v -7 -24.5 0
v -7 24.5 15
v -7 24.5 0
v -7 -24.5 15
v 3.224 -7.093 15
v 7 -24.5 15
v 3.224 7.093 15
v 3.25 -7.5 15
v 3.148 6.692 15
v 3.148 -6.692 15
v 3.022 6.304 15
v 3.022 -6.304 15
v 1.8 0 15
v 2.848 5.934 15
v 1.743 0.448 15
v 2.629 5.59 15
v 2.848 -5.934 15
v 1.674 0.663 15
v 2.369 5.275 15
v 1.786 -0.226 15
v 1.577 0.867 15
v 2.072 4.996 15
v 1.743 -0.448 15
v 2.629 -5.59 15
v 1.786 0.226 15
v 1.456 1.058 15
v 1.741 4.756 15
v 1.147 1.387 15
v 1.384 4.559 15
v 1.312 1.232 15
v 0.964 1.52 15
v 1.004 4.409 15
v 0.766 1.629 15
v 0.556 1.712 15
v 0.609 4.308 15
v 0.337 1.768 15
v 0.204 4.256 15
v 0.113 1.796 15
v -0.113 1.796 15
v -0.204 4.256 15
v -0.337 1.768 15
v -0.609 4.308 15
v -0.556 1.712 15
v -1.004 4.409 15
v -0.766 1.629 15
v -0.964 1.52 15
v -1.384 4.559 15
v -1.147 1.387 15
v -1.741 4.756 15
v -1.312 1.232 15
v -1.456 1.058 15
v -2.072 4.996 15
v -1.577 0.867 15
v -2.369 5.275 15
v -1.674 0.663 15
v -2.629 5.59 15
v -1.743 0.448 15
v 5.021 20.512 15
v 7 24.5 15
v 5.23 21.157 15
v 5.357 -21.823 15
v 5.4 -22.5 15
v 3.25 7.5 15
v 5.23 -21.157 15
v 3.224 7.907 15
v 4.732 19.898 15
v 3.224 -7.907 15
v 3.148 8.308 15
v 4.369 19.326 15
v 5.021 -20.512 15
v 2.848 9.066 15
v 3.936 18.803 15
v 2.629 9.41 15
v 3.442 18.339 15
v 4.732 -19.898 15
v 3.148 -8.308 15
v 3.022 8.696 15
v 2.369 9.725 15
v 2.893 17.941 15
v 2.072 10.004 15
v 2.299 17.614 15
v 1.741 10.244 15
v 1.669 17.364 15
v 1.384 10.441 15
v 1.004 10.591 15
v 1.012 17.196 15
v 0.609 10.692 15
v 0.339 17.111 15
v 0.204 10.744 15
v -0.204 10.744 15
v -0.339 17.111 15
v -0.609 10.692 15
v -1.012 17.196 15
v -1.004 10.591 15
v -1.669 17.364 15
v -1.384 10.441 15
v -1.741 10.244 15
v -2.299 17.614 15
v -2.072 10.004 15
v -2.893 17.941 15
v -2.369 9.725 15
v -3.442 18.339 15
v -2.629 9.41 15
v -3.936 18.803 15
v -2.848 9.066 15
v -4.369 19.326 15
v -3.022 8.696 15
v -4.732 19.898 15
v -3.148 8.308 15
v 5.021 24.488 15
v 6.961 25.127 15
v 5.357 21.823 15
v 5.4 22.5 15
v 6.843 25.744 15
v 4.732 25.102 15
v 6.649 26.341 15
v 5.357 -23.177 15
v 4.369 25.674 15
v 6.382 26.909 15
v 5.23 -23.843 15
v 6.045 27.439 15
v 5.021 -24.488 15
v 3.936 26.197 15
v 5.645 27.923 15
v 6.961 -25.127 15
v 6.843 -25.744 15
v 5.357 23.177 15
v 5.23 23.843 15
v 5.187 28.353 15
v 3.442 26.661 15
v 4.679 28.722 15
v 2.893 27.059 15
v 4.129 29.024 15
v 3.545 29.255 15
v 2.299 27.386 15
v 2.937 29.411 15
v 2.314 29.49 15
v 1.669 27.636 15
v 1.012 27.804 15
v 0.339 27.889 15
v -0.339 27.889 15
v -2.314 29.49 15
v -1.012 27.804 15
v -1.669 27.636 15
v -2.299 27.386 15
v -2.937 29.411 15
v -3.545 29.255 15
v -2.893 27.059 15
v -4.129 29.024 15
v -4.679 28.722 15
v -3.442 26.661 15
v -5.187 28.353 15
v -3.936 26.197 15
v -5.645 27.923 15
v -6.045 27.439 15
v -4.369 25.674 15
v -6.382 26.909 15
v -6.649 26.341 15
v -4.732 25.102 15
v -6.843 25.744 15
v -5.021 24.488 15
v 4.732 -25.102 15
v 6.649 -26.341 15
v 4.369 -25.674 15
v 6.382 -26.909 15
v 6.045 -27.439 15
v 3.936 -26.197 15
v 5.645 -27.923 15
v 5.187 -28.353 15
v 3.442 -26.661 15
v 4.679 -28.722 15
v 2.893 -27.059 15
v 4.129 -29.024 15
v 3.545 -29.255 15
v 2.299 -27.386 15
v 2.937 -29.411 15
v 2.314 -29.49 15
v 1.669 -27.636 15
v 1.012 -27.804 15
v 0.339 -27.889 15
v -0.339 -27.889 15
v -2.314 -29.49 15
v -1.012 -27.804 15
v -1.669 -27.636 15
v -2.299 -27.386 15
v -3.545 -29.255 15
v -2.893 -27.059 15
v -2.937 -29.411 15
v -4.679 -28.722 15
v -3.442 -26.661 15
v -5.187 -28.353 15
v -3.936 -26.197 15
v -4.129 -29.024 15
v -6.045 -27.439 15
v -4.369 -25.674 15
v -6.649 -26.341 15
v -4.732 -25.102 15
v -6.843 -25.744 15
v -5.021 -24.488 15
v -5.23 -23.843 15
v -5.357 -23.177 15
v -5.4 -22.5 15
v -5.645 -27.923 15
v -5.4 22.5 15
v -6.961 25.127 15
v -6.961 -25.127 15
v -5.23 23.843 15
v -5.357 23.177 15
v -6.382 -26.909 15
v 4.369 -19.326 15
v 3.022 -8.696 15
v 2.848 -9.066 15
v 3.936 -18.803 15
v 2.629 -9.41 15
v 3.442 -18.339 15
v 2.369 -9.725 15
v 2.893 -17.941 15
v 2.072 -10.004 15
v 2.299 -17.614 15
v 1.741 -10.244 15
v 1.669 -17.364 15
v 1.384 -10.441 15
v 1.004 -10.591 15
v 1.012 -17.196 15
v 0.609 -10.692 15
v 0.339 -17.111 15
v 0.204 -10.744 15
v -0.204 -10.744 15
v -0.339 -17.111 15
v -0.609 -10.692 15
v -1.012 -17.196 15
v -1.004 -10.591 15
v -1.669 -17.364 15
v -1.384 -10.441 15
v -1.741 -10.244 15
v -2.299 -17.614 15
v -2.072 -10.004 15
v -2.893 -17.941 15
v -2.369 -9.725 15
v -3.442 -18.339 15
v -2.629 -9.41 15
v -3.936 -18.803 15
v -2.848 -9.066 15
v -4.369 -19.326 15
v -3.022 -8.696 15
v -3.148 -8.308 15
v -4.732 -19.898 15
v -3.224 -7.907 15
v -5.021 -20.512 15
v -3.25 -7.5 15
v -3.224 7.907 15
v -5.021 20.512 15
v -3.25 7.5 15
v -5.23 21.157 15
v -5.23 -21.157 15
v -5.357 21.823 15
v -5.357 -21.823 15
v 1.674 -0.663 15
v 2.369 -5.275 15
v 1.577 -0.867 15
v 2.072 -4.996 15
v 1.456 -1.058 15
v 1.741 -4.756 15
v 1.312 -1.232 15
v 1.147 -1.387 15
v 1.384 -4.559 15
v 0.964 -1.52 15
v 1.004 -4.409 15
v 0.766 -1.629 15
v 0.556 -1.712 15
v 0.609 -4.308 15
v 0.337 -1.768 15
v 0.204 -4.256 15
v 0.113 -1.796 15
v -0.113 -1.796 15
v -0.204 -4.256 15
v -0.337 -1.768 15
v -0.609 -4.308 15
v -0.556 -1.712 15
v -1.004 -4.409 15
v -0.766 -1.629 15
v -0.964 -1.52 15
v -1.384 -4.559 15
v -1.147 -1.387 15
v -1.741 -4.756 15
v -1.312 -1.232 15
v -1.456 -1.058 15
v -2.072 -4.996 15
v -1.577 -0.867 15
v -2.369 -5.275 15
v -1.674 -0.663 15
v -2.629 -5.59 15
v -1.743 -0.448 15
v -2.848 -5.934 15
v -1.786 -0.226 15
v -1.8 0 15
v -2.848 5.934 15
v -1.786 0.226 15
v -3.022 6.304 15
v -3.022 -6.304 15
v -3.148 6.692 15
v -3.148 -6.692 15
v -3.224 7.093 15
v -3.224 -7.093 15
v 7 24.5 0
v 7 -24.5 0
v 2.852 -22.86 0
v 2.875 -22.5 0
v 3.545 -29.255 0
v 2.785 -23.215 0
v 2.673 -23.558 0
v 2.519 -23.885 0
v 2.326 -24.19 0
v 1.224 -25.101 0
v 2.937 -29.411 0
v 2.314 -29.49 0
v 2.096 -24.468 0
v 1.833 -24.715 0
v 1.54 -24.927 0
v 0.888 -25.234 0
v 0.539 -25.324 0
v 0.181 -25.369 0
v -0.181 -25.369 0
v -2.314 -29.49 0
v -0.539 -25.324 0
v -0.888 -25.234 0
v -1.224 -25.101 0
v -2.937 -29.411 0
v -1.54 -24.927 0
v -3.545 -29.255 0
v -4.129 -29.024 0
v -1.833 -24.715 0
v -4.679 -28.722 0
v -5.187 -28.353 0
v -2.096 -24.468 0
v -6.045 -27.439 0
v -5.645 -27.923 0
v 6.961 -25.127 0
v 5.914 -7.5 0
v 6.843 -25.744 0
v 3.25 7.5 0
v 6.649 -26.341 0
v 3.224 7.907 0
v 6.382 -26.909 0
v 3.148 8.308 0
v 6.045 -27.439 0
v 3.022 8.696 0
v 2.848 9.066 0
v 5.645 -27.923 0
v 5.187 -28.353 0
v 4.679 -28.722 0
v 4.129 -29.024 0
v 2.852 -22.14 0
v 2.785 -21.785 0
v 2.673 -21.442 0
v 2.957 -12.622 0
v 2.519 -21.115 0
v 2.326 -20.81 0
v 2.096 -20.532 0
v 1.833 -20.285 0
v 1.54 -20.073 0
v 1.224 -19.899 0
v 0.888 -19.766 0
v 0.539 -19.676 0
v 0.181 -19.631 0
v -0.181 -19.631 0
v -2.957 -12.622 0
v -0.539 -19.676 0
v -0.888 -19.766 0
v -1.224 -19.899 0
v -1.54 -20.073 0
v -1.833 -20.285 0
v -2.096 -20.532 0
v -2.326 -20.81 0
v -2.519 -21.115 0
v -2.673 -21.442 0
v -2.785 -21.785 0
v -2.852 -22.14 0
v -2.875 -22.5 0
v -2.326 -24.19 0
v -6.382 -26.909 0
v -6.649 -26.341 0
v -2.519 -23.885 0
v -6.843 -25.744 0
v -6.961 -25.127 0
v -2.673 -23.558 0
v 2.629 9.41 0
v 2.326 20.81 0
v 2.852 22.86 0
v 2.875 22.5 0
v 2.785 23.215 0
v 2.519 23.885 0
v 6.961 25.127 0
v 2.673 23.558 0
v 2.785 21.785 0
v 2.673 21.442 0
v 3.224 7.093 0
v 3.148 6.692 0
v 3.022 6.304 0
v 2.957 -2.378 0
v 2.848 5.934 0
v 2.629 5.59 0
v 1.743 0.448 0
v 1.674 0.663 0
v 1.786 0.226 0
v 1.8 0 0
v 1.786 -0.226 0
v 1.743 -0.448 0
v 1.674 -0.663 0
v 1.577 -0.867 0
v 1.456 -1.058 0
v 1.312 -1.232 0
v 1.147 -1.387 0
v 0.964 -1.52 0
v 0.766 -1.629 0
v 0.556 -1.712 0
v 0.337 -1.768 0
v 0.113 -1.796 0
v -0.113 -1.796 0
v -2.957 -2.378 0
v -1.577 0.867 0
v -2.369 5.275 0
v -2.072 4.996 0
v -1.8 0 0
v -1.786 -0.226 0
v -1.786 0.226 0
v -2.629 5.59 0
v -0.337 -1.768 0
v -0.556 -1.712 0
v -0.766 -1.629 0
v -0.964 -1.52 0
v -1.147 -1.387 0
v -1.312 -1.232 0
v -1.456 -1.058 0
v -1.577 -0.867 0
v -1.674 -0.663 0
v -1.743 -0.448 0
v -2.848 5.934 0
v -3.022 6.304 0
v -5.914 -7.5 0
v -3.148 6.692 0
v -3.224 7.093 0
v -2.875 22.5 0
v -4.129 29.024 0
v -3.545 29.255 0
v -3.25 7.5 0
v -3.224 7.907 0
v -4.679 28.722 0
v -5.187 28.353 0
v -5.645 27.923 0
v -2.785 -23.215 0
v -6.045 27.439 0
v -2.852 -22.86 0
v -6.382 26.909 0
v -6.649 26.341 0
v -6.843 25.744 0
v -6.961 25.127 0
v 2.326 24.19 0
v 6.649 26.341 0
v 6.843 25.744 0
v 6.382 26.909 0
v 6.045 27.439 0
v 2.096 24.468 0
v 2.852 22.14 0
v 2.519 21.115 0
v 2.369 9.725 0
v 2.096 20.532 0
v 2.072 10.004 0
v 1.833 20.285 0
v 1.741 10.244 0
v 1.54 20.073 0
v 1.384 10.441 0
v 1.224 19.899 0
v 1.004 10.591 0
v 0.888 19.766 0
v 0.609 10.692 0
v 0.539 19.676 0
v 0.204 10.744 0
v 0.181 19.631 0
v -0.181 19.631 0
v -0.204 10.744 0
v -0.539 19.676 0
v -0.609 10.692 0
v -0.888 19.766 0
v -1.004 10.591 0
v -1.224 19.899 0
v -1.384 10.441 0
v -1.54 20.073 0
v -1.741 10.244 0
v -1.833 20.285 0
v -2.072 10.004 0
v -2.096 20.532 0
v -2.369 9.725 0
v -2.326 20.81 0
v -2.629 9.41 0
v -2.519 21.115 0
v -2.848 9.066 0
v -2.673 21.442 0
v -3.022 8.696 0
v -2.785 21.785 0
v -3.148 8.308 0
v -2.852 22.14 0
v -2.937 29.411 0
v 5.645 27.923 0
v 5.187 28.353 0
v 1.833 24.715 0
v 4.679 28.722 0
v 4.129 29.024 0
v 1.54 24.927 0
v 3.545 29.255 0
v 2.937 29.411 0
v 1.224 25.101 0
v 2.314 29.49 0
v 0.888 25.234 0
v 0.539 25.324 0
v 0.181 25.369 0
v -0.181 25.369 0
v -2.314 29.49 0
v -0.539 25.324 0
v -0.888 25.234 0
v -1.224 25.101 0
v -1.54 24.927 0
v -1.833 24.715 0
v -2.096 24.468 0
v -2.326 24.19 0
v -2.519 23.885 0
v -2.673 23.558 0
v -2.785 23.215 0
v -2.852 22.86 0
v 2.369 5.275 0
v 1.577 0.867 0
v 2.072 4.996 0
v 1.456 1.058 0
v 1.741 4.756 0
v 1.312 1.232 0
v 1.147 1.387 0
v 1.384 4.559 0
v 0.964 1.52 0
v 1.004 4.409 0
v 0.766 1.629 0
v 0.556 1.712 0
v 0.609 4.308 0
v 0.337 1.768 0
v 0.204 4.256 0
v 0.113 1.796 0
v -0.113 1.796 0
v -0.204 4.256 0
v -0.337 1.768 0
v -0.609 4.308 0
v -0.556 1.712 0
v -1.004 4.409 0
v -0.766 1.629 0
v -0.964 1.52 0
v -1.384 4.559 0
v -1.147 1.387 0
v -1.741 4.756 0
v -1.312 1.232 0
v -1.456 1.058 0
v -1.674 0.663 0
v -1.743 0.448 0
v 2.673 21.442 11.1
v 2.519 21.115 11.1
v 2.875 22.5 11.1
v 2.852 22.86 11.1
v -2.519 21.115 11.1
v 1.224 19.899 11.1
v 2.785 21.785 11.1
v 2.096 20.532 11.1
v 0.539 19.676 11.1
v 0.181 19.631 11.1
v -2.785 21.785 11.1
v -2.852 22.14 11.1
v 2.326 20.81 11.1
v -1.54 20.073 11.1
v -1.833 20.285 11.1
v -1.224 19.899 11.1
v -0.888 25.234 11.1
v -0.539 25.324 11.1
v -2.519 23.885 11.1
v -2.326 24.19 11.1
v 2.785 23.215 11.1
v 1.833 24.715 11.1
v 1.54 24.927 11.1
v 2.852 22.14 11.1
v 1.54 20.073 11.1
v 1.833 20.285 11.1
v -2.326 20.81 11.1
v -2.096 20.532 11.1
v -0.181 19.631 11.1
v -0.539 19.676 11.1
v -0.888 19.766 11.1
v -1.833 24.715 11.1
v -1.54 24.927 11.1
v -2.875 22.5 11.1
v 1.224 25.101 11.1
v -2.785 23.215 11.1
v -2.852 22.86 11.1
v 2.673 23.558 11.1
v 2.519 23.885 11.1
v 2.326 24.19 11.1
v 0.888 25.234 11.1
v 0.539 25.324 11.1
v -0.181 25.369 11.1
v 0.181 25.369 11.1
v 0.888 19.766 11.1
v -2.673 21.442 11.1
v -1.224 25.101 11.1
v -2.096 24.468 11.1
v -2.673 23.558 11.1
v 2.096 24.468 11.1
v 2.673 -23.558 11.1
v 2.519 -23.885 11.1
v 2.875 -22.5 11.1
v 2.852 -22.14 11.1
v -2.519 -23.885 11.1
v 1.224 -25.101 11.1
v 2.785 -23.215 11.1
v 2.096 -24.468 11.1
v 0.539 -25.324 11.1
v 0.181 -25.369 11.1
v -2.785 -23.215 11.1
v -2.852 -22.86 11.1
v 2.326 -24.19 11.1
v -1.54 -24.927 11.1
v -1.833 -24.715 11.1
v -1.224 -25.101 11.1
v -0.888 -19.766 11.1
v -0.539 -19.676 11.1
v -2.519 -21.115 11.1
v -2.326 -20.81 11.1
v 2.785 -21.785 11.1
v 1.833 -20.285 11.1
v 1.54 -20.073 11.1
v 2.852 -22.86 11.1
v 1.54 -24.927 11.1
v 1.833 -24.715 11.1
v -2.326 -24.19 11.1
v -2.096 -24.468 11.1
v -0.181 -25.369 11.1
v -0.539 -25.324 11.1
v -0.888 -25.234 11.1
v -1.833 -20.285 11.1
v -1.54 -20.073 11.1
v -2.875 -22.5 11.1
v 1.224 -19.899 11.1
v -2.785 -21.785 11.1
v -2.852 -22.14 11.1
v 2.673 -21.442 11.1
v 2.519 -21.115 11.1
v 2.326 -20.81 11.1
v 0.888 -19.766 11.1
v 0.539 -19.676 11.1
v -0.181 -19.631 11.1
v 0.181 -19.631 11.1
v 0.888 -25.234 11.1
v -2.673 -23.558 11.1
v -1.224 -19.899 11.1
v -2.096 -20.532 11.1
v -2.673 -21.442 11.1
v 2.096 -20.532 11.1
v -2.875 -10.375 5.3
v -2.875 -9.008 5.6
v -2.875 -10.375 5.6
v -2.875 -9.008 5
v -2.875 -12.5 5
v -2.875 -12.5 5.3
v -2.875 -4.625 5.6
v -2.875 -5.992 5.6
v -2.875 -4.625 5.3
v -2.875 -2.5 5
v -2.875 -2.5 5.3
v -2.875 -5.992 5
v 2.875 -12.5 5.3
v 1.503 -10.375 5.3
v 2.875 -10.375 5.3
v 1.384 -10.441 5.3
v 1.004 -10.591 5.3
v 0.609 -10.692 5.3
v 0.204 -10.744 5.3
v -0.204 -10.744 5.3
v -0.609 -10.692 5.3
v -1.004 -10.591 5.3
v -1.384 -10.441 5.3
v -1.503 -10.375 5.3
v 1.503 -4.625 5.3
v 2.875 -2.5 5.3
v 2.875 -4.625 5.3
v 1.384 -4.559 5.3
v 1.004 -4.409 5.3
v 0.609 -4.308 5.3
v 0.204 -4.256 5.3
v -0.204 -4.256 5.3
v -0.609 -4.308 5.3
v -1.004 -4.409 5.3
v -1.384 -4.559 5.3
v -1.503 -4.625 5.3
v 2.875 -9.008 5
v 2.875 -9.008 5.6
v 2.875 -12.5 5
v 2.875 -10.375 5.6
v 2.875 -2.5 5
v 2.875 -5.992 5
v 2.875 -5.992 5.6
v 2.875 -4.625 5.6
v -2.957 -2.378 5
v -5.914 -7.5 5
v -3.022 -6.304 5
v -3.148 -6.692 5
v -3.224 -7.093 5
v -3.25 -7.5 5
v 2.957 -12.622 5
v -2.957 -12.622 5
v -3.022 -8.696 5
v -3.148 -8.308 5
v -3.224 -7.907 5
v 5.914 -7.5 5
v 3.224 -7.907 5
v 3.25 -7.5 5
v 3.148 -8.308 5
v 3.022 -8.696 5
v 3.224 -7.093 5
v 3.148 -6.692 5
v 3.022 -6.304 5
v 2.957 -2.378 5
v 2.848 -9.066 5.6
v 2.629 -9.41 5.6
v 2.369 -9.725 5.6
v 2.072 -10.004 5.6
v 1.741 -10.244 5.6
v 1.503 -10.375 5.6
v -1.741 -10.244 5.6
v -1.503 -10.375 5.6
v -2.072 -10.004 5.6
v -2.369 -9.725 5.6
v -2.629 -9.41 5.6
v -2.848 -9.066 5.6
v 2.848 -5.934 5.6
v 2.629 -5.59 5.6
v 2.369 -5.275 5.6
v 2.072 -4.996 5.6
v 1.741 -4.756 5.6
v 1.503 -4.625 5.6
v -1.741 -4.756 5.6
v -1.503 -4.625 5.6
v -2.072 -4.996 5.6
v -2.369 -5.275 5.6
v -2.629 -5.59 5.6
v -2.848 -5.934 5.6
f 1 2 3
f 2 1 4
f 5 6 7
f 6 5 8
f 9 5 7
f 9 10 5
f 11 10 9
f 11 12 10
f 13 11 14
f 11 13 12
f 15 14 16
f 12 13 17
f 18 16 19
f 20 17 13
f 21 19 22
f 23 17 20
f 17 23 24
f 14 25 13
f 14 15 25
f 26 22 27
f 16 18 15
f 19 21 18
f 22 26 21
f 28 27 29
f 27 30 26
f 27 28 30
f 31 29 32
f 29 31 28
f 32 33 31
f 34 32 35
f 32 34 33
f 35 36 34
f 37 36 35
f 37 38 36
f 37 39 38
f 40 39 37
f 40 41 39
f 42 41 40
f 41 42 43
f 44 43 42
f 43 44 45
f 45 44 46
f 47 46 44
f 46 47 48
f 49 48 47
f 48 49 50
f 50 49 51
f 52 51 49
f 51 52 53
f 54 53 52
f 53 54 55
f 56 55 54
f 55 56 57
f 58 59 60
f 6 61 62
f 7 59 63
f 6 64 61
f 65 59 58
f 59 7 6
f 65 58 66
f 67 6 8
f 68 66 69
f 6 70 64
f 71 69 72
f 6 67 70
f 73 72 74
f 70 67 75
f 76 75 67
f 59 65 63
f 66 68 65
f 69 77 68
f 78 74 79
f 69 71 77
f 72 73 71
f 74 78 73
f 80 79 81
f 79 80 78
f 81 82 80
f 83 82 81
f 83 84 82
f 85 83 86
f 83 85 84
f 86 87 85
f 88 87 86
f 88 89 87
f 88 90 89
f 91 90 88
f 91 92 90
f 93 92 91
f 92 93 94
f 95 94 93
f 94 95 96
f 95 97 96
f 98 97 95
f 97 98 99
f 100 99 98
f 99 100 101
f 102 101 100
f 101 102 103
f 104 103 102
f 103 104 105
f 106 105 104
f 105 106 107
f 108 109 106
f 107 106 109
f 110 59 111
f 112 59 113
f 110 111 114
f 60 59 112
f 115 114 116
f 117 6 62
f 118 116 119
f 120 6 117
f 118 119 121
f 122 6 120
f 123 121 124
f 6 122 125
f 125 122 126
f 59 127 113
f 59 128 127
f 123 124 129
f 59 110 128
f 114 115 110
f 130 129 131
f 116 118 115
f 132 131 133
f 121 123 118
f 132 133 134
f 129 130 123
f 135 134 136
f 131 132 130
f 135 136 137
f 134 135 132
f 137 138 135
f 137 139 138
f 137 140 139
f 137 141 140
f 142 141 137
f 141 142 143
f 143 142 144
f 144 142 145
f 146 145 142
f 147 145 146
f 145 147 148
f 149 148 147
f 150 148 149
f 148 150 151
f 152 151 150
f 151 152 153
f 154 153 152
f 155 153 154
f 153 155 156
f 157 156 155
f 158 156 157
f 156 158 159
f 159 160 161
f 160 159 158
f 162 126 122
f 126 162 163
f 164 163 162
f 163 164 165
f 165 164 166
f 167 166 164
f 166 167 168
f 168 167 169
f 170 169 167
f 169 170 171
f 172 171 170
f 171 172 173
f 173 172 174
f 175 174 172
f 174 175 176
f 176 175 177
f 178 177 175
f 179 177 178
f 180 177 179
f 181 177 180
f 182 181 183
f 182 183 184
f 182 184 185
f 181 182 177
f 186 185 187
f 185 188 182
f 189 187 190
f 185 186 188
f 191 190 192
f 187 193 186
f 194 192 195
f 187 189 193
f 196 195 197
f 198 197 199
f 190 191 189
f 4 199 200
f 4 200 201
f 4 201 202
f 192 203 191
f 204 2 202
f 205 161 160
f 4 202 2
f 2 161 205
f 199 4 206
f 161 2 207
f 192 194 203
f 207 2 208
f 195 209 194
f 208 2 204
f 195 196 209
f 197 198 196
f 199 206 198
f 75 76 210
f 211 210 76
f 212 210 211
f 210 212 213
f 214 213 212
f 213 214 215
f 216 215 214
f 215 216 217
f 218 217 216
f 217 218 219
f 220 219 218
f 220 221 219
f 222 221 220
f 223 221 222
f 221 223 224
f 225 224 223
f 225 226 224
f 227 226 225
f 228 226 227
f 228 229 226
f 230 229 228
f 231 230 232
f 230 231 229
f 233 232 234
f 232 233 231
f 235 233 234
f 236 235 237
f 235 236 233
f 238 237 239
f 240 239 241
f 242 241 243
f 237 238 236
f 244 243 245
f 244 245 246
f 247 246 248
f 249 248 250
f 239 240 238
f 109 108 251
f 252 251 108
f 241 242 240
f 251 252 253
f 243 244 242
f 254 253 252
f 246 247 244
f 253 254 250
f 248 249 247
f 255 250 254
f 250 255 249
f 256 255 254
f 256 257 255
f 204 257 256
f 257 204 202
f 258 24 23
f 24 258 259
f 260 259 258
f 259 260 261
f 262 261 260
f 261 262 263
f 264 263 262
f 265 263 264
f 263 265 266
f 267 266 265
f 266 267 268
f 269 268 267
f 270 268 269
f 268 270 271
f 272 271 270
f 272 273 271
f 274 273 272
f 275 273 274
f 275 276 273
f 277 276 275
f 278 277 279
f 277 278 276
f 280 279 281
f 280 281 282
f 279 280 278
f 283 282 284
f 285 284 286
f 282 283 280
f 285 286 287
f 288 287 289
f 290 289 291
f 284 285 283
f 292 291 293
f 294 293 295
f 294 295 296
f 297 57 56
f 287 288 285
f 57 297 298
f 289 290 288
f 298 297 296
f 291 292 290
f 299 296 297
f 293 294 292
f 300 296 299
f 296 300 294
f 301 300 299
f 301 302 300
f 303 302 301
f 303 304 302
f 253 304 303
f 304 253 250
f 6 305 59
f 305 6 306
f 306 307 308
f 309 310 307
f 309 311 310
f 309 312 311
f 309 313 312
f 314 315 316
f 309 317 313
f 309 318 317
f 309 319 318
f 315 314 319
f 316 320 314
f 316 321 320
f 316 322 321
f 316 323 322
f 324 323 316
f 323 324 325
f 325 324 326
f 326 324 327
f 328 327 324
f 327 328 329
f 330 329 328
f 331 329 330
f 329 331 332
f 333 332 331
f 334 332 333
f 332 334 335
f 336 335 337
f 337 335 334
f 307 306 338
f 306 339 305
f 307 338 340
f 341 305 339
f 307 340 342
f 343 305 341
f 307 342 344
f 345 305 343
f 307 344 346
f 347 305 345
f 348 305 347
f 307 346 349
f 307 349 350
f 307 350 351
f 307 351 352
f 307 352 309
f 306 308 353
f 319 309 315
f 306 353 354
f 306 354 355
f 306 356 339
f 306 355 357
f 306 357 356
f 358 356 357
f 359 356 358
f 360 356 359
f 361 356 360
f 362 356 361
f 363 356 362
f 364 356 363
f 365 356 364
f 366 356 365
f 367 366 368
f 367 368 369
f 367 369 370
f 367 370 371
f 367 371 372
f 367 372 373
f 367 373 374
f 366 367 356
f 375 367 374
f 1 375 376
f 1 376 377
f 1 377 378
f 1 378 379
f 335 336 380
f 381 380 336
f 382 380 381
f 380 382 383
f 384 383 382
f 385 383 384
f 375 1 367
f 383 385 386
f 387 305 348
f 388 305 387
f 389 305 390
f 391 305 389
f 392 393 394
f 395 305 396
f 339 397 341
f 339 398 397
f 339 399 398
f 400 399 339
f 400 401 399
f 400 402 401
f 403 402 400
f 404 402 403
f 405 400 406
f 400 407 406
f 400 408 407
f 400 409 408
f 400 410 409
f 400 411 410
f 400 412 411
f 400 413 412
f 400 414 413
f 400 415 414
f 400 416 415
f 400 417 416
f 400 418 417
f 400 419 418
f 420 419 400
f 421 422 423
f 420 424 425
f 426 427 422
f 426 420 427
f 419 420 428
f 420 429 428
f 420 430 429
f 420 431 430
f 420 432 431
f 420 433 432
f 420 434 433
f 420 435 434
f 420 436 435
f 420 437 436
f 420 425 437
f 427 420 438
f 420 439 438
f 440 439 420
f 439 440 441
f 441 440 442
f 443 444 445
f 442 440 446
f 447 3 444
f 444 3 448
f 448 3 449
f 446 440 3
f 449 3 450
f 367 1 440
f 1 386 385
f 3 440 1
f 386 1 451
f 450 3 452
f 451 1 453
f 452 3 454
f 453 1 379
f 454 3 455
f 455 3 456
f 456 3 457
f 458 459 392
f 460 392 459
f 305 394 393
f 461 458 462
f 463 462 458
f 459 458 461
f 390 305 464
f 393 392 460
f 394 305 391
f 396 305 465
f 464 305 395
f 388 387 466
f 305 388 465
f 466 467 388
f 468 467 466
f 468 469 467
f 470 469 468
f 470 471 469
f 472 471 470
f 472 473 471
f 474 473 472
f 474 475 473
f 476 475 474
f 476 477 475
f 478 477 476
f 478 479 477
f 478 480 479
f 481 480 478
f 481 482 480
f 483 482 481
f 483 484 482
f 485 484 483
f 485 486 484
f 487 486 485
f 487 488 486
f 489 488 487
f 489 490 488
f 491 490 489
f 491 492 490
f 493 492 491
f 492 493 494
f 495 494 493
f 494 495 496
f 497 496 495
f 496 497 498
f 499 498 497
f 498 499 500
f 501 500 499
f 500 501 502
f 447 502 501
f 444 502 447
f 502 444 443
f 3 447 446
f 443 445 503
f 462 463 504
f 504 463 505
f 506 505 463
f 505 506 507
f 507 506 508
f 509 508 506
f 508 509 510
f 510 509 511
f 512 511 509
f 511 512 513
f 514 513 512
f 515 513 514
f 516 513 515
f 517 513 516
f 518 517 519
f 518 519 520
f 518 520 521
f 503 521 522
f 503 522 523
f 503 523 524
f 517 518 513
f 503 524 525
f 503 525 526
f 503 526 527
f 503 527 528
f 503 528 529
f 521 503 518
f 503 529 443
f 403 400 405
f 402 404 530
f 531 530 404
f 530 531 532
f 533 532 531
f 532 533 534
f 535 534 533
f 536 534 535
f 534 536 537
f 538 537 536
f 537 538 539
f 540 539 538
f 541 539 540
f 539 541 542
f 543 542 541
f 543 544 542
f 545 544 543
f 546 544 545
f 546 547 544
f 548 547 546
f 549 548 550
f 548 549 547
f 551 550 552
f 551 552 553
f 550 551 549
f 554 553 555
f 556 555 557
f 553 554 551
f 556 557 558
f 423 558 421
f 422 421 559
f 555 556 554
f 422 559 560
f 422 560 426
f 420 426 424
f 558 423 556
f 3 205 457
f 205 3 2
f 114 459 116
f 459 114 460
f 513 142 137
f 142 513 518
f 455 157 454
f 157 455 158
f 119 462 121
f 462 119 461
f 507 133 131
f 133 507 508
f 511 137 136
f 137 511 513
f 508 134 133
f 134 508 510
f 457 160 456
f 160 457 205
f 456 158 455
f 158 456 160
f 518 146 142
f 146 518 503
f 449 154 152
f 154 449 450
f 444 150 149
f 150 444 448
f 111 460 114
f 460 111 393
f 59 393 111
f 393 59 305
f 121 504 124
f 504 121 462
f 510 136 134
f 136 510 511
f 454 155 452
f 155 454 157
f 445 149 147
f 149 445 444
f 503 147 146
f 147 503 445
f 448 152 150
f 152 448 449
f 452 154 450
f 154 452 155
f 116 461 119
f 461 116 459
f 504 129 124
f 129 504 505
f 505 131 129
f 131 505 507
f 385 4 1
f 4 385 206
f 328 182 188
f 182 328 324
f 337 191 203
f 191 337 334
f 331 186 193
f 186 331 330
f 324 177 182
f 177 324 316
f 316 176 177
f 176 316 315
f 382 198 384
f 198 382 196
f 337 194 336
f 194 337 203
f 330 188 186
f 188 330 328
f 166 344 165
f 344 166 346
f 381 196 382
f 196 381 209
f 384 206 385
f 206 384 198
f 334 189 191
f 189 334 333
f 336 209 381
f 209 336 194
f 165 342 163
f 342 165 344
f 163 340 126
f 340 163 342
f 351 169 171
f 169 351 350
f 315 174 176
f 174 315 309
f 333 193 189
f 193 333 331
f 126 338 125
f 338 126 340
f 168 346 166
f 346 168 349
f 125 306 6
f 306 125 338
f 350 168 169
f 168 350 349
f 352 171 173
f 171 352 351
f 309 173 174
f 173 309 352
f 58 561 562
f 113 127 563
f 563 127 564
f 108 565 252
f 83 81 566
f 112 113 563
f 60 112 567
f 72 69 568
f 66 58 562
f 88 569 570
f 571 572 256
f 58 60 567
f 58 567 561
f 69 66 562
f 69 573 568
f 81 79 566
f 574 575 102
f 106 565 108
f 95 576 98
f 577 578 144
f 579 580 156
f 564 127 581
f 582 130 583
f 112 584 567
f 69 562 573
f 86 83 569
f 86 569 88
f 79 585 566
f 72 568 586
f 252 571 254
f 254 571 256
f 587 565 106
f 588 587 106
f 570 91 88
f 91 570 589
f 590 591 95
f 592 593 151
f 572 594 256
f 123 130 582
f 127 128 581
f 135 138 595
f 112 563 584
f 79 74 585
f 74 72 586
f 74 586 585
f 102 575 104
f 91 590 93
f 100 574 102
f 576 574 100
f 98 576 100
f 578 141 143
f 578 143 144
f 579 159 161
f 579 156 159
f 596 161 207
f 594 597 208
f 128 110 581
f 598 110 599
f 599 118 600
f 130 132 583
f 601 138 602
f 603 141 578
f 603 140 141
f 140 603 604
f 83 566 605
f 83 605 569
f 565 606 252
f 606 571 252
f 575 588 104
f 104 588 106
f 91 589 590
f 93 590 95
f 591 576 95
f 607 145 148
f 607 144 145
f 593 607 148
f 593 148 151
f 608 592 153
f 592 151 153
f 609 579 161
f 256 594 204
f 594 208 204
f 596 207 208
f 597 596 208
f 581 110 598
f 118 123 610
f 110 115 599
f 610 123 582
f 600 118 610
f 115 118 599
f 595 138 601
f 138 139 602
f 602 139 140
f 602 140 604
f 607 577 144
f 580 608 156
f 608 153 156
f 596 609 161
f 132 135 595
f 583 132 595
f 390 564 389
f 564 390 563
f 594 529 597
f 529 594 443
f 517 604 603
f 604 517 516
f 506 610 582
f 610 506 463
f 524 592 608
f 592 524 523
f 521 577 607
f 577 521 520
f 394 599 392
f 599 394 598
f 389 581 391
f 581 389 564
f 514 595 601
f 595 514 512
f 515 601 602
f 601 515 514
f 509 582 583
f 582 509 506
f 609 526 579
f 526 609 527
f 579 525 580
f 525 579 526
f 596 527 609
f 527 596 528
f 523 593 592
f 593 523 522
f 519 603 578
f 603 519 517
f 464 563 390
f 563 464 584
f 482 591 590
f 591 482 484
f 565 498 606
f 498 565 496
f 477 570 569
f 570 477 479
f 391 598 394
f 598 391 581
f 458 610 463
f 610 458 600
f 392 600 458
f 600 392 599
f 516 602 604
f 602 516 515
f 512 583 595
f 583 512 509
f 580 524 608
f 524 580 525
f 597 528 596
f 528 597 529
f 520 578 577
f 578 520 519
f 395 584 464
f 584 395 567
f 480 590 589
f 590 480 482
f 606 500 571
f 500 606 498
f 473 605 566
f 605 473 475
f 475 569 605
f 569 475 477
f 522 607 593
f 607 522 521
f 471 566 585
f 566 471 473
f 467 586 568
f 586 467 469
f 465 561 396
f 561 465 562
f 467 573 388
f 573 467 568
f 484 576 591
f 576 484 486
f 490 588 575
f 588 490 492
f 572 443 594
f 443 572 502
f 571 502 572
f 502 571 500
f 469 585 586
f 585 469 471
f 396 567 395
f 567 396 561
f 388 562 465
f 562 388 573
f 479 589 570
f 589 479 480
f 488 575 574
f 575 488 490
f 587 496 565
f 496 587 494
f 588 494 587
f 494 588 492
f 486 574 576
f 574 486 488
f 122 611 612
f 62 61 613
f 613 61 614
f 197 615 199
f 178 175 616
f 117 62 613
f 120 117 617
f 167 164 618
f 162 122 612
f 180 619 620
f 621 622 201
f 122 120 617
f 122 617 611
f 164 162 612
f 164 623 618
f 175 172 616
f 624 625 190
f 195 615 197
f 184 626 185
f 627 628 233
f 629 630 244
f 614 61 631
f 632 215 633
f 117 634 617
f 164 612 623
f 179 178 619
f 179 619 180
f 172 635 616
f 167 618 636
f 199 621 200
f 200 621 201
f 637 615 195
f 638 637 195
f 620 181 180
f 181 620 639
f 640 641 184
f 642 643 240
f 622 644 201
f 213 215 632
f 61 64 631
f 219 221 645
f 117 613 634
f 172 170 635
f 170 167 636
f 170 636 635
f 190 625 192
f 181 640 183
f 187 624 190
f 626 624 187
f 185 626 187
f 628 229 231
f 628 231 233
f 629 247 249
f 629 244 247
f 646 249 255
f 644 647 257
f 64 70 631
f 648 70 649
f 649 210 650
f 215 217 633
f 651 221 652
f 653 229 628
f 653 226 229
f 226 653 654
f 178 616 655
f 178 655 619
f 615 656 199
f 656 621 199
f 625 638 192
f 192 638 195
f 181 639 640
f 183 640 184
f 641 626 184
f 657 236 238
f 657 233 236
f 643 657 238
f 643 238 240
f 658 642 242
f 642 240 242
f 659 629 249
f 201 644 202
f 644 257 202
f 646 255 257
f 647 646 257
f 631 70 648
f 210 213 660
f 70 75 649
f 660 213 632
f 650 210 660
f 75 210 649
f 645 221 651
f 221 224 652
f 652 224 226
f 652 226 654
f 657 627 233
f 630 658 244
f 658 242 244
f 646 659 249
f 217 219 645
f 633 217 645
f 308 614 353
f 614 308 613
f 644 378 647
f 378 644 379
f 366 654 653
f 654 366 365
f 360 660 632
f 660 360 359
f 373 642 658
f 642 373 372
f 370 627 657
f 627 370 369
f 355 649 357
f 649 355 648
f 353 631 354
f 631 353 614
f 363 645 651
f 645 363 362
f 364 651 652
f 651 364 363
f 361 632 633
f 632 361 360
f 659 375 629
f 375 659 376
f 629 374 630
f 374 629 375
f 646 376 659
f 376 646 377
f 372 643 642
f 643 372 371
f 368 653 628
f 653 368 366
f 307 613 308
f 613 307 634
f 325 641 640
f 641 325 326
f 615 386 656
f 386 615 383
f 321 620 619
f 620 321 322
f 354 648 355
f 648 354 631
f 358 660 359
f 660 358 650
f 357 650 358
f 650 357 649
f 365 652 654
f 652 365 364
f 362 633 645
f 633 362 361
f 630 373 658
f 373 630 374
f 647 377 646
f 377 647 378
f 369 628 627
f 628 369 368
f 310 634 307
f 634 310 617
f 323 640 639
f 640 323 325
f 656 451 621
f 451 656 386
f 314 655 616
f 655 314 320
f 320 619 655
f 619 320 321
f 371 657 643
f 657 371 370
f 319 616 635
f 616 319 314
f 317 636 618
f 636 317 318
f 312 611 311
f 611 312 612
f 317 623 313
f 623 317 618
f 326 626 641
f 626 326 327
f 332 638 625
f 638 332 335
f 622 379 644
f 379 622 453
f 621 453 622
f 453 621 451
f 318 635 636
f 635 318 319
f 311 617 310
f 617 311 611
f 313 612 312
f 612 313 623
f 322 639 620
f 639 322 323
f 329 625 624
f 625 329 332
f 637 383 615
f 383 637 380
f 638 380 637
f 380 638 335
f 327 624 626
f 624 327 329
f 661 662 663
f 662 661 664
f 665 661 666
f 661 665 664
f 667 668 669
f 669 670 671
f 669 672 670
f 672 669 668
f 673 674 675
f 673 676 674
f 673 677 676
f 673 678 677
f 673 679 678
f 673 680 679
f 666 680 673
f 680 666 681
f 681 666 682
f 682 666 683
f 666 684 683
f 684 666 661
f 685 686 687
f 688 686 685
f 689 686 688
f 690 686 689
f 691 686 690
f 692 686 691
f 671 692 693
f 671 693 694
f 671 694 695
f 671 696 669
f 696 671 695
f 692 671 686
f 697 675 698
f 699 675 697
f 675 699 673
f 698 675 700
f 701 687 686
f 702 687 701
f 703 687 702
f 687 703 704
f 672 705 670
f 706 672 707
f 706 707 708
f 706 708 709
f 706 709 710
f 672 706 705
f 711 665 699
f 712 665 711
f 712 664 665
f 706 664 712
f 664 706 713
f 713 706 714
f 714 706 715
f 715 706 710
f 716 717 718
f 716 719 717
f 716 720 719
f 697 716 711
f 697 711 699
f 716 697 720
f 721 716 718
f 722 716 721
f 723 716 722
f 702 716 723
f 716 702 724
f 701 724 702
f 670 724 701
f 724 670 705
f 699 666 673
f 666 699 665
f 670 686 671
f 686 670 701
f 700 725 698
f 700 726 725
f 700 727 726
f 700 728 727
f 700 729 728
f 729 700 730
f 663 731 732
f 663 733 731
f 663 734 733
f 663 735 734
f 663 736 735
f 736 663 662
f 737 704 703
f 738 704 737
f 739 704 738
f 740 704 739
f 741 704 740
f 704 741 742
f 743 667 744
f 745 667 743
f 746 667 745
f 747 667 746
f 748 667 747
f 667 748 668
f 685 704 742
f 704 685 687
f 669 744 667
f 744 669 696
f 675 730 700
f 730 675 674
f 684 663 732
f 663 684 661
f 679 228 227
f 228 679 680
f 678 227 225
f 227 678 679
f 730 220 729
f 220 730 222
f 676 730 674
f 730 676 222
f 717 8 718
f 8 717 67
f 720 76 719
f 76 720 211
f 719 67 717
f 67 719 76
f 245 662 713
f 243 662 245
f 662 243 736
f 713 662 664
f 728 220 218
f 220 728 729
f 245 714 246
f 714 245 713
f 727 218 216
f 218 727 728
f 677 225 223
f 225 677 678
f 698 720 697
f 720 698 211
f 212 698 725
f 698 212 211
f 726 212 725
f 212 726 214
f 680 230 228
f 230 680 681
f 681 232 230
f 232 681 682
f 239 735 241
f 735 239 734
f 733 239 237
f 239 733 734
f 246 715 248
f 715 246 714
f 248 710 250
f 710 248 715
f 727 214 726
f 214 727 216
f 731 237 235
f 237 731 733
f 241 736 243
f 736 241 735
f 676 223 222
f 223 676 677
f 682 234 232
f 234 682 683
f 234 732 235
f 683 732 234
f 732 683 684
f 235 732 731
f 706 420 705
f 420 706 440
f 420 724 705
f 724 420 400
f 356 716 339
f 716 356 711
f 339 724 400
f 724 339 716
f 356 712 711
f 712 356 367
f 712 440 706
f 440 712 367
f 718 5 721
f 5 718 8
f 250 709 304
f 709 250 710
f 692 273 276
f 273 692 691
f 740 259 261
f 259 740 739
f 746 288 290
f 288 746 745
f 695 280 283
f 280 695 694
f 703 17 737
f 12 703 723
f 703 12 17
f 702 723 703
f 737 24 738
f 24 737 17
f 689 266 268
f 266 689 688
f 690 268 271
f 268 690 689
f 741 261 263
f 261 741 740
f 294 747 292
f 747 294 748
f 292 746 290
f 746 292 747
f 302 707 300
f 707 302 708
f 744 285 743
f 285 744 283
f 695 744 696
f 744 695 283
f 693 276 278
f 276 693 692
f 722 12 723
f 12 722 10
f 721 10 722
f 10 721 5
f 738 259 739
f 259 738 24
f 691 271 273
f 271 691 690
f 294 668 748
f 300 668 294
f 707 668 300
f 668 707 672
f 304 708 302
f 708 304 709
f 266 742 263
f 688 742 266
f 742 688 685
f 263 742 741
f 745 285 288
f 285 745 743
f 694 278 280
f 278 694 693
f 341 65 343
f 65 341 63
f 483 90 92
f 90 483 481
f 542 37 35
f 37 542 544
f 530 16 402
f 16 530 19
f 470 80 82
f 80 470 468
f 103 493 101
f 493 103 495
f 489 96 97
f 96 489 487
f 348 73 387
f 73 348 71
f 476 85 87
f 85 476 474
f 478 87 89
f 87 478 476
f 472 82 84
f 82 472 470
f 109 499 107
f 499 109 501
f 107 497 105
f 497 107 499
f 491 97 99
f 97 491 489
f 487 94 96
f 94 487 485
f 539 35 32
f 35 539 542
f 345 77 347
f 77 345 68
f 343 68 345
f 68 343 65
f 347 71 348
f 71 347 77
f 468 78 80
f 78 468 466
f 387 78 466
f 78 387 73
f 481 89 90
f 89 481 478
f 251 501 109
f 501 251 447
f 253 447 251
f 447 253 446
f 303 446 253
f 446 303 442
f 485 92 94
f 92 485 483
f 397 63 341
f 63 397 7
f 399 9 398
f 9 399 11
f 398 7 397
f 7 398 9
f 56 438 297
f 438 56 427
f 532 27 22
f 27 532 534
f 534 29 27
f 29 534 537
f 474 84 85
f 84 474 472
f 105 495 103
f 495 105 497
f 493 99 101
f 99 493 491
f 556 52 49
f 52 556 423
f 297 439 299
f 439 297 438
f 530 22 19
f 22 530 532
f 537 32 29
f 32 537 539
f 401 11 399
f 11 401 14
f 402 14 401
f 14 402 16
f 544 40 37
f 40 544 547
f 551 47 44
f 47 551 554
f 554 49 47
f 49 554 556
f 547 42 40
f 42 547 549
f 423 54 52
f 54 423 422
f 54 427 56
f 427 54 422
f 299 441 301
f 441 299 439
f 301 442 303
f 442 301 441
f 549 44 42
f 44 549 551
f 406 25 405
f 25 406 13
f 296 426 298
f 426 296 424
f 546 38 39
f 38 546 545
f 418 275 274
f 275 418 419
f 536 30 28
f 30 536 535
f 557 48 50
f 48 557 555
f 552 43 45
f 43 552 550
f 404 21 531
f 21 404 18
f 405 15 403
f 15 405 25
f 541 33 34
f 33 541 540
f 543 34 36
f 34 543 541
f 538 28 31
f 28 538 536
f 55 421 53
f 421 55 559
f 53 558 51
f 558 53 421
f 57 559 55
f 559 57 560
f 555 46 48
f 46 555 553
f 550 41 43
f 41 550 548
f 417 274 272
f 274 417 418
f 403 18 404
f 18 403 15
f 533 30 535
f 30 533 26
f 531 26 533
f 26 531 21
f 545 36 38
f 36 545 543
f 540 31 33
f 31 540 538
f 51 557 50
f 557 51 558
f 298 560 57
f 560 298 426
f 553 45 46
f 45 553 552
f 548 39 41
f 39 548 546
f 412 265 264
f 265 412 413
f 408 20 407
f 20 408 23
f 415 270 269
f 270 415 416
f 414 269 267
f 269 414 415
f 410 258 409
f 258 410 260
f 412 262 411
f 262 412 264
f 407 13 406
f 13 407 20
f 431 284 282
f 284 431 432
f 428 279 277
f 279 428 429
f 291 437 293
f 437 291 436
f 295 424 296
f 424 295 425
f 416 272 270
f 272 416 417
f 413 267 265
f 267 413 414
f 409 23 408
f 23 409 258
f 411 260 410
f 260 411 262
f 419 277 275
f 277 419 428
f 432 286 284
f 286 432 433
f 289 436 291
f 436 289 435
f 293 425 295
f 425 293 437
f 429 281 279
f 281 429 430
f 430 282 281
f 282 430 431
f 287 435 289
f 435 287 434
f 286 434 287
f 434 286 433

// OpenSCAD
$fn = 50;


difference() {
	union() {
		hull() {
			translate(v = [-2.0000000000, 9.5000000000, 0]) {
				cylinder(h = 15, r = 5);
			}
			translate(v = [2.0000000000, 9.5000000000, 0]) {
				cylinder(h = 15, r = 5);
			}
			translate(v = [-2.0000000000, -9.5000000000, 0]) {
				cylinder(h = 15, r = 5);
			}
			translate(v = [2.0000000000, -9.5000000000, 0]) {
				cylinder(h = 15, r = 5);
			}
		}
		translate(v = [0.0000000000, 15.0000000000, 0]) {
			hull() {
				translate(v = [-2.0000000000, 9.5000000000, 0]) {
					cylinder(h = 15, r = 5);
				}
				translate(v = [2.0000000000, 9.5000000000, 0]) {
					cylinder(h = 15, r = 5);
				}
				translate(v = [-2.0000000000, -9.5000000000, 0]) {
					cylinder(h = 15, r = 5);
				}
				translate(v = [2.0000000000, -9.5000000000, 0]) {
					cylinder(h = 15, r = 5);
				}
			}
		}
		translate(v = [0.0000000000, 15.0000000000, 0]) {
			hull() {
				translate(v = [-2.0000000000, 9.5000000000, 0]) {
					cylinder(h = 15, r = 5);
				}
				translate(v = [2.0000000000, 9.5000000000, 0]) {
					cylinder(h = 15, r = 5);
				}
				translate(v = [-2.0000000000, -9.5000000000, 0]) {
					cylinder(h = 15, r = 5);
				}
				translate(v = [2.0000000000, -9.5000000000, 0]) {
					cylinder(h = 15, r = 5);
				}
			}
		}
		translate(v = [0.0000000000, -15.0000000000, 0]) {
			hull() {
				translate(v = [-2.0000000000, 9.5000000000, 0]) {
					cylinder(h = 15, r = 5);
				}
				translate(v = [2.0000000000, 9.5000000000, 0]) {
					cylinder(h = 15, r = 5);
				}
				translate(v = [-2.0000000000, -9.5000000000, 0]) {
					cylinder(h = 15, r = 5);
				}
				translate(v = [2.0000000000, -9.5000000000, 0]) {
					cylinder(h = 15, r = 5);
				}
			}
		}
		translate(v = [0.0000000000, -15.0000000000, 0]) {
			hull() {
				translate(v = [-2.0000000000, 9.5000000000, 0]) {
					cylinder(h = 15, r = 5);
				}
				translate(v = [2.0000000000, 9.5000000000, 0]) {
					cylinder(h = 15, r = 5);
				}
				translate(v = [-2.0000000000, -9.5000000000, 0]) {
					cylinder(h = 15, r = 5);
				}
				translate(v = [2.0000000000, -9.5000000000, 0]) {
					cylinder(h = 15, r = 5);
				}
			}
		}
	}
	union() {
		translate(v = [0.0000000000, 22.5000000000, 15]) {
			rotate(a = [0, 0, 0]) {
				difference() {
					union() {
						#translate(v = [0, 0, -15.0000000000]) {
							cylinder(h = 15, r = 2.6000000000);
						}
						#translate(v = [0, 0, -3.9000000000]) {
							cylinder(h = 3.9000000000, r1 = 2.8750000000, r2 = 5.4000000000);
						}
						#translate(v = [0, 0, -15.0000000000]) {
							cylinder(h = 15, r = 2.8750000000);
						}
						#translate(v = [0, 0, -15.0000000000]) {
							cylinder(h = 15, r = 2.6000000000);
						}
					}
					union();
				}
			}
		}
		translate(v = [0.0000000000, 22.5000000000, 15]) {
			rotate(a = [0, 0, 0]) {
				difference() {
					union() {
						#translate(v = [0, 0, -15.0000000000]) {
							cylinder(h = 15, r = 2.6000000000);
						}
						#translate(v = [0, 0, -3.9000000000]) {
							cylinder(h = 3.9000000000, r1 = 2.8750000000, r2 = 5.4000000000);
						}
						#translate(v = [0, 0, -15.0000000000]) {
							cylinder(h = 15, r = 2.8750000000);
						}
						#translate(v = [0, 0, -15.0000000000]) {
							cylinder(h = 15, r = 2.6000000000);
						}
					}
					union();
				}
			}
		}
		translate(v = [0.0000000000, -22.5000000000, 15]) {
			rotate(a = [0, 0, 0]) {
				difference() {
					union() {
						#translate(v = [0, 0, -15.0000000000]) {
							cylinder(h = 15, r = 2.6000000000);
						}
						#translate(v = [0, 0, -3.9000000000]) {
							cylinder(h = 3.9000000000, r1 = 2.8750000000, r2 = 5.4000000000);
						}
						#translate(v = [0, 0, -15.0000000000]) {
							cylinder(h = 15, r = 2.8750000000);
						}
						#translate(v = [0, 0, -15.0000000000]) {
							cylinder(h = 15, r = 2.6000000000);
						}
					}
					union();
				}
			}
		}
		translate(v = [0.0000000000, -22.5000000000, 15]) {
			rotate(a = [0, 0, 0]) {
				difference() {
					union() {
						#translate(v = [0, 0, -15.0000000000]) {
							cylinder(h = 15, r = 2.6000000000);
						}
						#translate(v = [0, 0, -3.9000000000]) {
							cylinder(h = 3.9000000000, r1 = 2.8750000000, r2 = 5.4000000000);
						}
						#translate(v = [0, 0, -15.0000000000]) {
							cylinder(h = 15, r = 2.8750000000);
						}
						#translate(v = [0, 0, -15.0000000000]) {
							cylinder(h = 15, r = 2.6000000000);
						}
					}
					union();
				}
			}
		}
		translate(v = [0.0000000000, -7.5000000000, 0]) {
			rotate(a = [0, 0, 0]) {
				difference() {
					union() {
						#translate(v = [-2.8750000000, -5.0000000000, -0.3000000000]) {
							cube(size = [5.7500000000, 10, 0.3000000000]);
						}
						#translate(v = [-2.8750000000, -2.8750000000, -0.6000000000]) {
							cube(size = [5.7500000000, 5.7500000000, 0.3000000000]);
						}
						#translate(v = [-2.8750000000, -5.0000000000, 5]) {
							cube(size = [5.7500000000, 10, 0.3000000000]);
						}
						#translate(v = [-2.8750000000, -2.8750000000, 5.3000000000]) {
							cube(size = [5.7500000000, 5.7500000000, 0.3000000000]);
						}
						#translate(v = [0, 0, -100.0000000000]) {
							cylinder(h = 200, r = 3.2500000000);
						}
						#linear_extrude(height = 5) {
							polygon(points = [[5.9142500000, 0.0000000000], [2.9571250000, 5.1218907443], [-2.9571250000, 5.1218907443], [-5.9142500000, 0.0000000000], [-2.9571250000, -5.1218907443], [2.9571250000, -5.1218907443]]);
						}
						#translate(v = [-2.8750000000, -5.0000000000, -0.3000000000]) {
							cube(size = [5.7500000000, 10, 0.3000000000]);
						}
						#translate(v = [-2.8750000000, -2.8750000000, -0.6000000000]) {
							cube(size = [5.7500000000, 5.7500000000, 0.3000000000]);
						}
						#translate(v = [-2.8750000000, -5.0000000000, 5]) {
							cube(size = [5.7500000000, 10, 0.3000000000]);
						}
						#translate(v = [-2.8750000000, -2.8750000000, 5.3000000000]) {
							cube(size = [5.7500000000, 5.7500000000, 0.3000000000]);
						}
						#translate(v = [0, 0, -100.0000000000]) {
							cylinder(h = 200, r = 3.2500000000);
						}
						#translate(v = [-2.8750000000, -5.0000000000, -0.3000000000]) {
							cube(size = [5.7500000000, 10, 0.3000000000]);
						}
						#translate(v = [-2.8750000000, -2.8750000000, -0.6000000000]) {
							cube(size = [5.7500000000, 5.7500000000, 0.3000000000]);
						}
						#translate(v = [-2.8750000000, -5.0000000000, 5]) {
							cube(size = [5.7500000000, 10, 0.3000000000]);
						}
						#translate(v = [-2.8750000000, -2.8750000000, 5.3000000000]) {
							cube(size = [5.7500000000, 5.7500000000, 0.3000000000]);
						}
						#translate(v = [0, 0, -100.0000000000]) {
							cylinder(h = 200, r = 3.2500000000);
						}
					}
					union();
				}
			}
		}
		translate(v = [0.0000000000, -7.5000000000, 0]) {
			translate(v = [0, 0, -100]) {
				cylinder(h = 200, r = 3.2500000000);
			}
		}
		translate(v = [0.0000000000, 7.5000000000, 0]) {
			translate(v = [0, 0, -100]) {
				cylinder(h = 200, r = 3.2500000000);
			}
		}
		translate(v = [0.0000000000, -7.5000000000, 0]) {
			translate(v = [0, 0, -100]) {
				cylinder(h = 200, r = 1.8000000000);
			}
		}
		translate(v = [0, 0, -100]) {
			cylinder(h = 200, r = 1.8000000000);
		}
		translate(v = [0.0000000000, 7.5000000000, 0]) {
			translate(v = [0, 0, -100]) {
				cylinder(h = 200, r = 1.8000000000);
			}
		}
	}
}
